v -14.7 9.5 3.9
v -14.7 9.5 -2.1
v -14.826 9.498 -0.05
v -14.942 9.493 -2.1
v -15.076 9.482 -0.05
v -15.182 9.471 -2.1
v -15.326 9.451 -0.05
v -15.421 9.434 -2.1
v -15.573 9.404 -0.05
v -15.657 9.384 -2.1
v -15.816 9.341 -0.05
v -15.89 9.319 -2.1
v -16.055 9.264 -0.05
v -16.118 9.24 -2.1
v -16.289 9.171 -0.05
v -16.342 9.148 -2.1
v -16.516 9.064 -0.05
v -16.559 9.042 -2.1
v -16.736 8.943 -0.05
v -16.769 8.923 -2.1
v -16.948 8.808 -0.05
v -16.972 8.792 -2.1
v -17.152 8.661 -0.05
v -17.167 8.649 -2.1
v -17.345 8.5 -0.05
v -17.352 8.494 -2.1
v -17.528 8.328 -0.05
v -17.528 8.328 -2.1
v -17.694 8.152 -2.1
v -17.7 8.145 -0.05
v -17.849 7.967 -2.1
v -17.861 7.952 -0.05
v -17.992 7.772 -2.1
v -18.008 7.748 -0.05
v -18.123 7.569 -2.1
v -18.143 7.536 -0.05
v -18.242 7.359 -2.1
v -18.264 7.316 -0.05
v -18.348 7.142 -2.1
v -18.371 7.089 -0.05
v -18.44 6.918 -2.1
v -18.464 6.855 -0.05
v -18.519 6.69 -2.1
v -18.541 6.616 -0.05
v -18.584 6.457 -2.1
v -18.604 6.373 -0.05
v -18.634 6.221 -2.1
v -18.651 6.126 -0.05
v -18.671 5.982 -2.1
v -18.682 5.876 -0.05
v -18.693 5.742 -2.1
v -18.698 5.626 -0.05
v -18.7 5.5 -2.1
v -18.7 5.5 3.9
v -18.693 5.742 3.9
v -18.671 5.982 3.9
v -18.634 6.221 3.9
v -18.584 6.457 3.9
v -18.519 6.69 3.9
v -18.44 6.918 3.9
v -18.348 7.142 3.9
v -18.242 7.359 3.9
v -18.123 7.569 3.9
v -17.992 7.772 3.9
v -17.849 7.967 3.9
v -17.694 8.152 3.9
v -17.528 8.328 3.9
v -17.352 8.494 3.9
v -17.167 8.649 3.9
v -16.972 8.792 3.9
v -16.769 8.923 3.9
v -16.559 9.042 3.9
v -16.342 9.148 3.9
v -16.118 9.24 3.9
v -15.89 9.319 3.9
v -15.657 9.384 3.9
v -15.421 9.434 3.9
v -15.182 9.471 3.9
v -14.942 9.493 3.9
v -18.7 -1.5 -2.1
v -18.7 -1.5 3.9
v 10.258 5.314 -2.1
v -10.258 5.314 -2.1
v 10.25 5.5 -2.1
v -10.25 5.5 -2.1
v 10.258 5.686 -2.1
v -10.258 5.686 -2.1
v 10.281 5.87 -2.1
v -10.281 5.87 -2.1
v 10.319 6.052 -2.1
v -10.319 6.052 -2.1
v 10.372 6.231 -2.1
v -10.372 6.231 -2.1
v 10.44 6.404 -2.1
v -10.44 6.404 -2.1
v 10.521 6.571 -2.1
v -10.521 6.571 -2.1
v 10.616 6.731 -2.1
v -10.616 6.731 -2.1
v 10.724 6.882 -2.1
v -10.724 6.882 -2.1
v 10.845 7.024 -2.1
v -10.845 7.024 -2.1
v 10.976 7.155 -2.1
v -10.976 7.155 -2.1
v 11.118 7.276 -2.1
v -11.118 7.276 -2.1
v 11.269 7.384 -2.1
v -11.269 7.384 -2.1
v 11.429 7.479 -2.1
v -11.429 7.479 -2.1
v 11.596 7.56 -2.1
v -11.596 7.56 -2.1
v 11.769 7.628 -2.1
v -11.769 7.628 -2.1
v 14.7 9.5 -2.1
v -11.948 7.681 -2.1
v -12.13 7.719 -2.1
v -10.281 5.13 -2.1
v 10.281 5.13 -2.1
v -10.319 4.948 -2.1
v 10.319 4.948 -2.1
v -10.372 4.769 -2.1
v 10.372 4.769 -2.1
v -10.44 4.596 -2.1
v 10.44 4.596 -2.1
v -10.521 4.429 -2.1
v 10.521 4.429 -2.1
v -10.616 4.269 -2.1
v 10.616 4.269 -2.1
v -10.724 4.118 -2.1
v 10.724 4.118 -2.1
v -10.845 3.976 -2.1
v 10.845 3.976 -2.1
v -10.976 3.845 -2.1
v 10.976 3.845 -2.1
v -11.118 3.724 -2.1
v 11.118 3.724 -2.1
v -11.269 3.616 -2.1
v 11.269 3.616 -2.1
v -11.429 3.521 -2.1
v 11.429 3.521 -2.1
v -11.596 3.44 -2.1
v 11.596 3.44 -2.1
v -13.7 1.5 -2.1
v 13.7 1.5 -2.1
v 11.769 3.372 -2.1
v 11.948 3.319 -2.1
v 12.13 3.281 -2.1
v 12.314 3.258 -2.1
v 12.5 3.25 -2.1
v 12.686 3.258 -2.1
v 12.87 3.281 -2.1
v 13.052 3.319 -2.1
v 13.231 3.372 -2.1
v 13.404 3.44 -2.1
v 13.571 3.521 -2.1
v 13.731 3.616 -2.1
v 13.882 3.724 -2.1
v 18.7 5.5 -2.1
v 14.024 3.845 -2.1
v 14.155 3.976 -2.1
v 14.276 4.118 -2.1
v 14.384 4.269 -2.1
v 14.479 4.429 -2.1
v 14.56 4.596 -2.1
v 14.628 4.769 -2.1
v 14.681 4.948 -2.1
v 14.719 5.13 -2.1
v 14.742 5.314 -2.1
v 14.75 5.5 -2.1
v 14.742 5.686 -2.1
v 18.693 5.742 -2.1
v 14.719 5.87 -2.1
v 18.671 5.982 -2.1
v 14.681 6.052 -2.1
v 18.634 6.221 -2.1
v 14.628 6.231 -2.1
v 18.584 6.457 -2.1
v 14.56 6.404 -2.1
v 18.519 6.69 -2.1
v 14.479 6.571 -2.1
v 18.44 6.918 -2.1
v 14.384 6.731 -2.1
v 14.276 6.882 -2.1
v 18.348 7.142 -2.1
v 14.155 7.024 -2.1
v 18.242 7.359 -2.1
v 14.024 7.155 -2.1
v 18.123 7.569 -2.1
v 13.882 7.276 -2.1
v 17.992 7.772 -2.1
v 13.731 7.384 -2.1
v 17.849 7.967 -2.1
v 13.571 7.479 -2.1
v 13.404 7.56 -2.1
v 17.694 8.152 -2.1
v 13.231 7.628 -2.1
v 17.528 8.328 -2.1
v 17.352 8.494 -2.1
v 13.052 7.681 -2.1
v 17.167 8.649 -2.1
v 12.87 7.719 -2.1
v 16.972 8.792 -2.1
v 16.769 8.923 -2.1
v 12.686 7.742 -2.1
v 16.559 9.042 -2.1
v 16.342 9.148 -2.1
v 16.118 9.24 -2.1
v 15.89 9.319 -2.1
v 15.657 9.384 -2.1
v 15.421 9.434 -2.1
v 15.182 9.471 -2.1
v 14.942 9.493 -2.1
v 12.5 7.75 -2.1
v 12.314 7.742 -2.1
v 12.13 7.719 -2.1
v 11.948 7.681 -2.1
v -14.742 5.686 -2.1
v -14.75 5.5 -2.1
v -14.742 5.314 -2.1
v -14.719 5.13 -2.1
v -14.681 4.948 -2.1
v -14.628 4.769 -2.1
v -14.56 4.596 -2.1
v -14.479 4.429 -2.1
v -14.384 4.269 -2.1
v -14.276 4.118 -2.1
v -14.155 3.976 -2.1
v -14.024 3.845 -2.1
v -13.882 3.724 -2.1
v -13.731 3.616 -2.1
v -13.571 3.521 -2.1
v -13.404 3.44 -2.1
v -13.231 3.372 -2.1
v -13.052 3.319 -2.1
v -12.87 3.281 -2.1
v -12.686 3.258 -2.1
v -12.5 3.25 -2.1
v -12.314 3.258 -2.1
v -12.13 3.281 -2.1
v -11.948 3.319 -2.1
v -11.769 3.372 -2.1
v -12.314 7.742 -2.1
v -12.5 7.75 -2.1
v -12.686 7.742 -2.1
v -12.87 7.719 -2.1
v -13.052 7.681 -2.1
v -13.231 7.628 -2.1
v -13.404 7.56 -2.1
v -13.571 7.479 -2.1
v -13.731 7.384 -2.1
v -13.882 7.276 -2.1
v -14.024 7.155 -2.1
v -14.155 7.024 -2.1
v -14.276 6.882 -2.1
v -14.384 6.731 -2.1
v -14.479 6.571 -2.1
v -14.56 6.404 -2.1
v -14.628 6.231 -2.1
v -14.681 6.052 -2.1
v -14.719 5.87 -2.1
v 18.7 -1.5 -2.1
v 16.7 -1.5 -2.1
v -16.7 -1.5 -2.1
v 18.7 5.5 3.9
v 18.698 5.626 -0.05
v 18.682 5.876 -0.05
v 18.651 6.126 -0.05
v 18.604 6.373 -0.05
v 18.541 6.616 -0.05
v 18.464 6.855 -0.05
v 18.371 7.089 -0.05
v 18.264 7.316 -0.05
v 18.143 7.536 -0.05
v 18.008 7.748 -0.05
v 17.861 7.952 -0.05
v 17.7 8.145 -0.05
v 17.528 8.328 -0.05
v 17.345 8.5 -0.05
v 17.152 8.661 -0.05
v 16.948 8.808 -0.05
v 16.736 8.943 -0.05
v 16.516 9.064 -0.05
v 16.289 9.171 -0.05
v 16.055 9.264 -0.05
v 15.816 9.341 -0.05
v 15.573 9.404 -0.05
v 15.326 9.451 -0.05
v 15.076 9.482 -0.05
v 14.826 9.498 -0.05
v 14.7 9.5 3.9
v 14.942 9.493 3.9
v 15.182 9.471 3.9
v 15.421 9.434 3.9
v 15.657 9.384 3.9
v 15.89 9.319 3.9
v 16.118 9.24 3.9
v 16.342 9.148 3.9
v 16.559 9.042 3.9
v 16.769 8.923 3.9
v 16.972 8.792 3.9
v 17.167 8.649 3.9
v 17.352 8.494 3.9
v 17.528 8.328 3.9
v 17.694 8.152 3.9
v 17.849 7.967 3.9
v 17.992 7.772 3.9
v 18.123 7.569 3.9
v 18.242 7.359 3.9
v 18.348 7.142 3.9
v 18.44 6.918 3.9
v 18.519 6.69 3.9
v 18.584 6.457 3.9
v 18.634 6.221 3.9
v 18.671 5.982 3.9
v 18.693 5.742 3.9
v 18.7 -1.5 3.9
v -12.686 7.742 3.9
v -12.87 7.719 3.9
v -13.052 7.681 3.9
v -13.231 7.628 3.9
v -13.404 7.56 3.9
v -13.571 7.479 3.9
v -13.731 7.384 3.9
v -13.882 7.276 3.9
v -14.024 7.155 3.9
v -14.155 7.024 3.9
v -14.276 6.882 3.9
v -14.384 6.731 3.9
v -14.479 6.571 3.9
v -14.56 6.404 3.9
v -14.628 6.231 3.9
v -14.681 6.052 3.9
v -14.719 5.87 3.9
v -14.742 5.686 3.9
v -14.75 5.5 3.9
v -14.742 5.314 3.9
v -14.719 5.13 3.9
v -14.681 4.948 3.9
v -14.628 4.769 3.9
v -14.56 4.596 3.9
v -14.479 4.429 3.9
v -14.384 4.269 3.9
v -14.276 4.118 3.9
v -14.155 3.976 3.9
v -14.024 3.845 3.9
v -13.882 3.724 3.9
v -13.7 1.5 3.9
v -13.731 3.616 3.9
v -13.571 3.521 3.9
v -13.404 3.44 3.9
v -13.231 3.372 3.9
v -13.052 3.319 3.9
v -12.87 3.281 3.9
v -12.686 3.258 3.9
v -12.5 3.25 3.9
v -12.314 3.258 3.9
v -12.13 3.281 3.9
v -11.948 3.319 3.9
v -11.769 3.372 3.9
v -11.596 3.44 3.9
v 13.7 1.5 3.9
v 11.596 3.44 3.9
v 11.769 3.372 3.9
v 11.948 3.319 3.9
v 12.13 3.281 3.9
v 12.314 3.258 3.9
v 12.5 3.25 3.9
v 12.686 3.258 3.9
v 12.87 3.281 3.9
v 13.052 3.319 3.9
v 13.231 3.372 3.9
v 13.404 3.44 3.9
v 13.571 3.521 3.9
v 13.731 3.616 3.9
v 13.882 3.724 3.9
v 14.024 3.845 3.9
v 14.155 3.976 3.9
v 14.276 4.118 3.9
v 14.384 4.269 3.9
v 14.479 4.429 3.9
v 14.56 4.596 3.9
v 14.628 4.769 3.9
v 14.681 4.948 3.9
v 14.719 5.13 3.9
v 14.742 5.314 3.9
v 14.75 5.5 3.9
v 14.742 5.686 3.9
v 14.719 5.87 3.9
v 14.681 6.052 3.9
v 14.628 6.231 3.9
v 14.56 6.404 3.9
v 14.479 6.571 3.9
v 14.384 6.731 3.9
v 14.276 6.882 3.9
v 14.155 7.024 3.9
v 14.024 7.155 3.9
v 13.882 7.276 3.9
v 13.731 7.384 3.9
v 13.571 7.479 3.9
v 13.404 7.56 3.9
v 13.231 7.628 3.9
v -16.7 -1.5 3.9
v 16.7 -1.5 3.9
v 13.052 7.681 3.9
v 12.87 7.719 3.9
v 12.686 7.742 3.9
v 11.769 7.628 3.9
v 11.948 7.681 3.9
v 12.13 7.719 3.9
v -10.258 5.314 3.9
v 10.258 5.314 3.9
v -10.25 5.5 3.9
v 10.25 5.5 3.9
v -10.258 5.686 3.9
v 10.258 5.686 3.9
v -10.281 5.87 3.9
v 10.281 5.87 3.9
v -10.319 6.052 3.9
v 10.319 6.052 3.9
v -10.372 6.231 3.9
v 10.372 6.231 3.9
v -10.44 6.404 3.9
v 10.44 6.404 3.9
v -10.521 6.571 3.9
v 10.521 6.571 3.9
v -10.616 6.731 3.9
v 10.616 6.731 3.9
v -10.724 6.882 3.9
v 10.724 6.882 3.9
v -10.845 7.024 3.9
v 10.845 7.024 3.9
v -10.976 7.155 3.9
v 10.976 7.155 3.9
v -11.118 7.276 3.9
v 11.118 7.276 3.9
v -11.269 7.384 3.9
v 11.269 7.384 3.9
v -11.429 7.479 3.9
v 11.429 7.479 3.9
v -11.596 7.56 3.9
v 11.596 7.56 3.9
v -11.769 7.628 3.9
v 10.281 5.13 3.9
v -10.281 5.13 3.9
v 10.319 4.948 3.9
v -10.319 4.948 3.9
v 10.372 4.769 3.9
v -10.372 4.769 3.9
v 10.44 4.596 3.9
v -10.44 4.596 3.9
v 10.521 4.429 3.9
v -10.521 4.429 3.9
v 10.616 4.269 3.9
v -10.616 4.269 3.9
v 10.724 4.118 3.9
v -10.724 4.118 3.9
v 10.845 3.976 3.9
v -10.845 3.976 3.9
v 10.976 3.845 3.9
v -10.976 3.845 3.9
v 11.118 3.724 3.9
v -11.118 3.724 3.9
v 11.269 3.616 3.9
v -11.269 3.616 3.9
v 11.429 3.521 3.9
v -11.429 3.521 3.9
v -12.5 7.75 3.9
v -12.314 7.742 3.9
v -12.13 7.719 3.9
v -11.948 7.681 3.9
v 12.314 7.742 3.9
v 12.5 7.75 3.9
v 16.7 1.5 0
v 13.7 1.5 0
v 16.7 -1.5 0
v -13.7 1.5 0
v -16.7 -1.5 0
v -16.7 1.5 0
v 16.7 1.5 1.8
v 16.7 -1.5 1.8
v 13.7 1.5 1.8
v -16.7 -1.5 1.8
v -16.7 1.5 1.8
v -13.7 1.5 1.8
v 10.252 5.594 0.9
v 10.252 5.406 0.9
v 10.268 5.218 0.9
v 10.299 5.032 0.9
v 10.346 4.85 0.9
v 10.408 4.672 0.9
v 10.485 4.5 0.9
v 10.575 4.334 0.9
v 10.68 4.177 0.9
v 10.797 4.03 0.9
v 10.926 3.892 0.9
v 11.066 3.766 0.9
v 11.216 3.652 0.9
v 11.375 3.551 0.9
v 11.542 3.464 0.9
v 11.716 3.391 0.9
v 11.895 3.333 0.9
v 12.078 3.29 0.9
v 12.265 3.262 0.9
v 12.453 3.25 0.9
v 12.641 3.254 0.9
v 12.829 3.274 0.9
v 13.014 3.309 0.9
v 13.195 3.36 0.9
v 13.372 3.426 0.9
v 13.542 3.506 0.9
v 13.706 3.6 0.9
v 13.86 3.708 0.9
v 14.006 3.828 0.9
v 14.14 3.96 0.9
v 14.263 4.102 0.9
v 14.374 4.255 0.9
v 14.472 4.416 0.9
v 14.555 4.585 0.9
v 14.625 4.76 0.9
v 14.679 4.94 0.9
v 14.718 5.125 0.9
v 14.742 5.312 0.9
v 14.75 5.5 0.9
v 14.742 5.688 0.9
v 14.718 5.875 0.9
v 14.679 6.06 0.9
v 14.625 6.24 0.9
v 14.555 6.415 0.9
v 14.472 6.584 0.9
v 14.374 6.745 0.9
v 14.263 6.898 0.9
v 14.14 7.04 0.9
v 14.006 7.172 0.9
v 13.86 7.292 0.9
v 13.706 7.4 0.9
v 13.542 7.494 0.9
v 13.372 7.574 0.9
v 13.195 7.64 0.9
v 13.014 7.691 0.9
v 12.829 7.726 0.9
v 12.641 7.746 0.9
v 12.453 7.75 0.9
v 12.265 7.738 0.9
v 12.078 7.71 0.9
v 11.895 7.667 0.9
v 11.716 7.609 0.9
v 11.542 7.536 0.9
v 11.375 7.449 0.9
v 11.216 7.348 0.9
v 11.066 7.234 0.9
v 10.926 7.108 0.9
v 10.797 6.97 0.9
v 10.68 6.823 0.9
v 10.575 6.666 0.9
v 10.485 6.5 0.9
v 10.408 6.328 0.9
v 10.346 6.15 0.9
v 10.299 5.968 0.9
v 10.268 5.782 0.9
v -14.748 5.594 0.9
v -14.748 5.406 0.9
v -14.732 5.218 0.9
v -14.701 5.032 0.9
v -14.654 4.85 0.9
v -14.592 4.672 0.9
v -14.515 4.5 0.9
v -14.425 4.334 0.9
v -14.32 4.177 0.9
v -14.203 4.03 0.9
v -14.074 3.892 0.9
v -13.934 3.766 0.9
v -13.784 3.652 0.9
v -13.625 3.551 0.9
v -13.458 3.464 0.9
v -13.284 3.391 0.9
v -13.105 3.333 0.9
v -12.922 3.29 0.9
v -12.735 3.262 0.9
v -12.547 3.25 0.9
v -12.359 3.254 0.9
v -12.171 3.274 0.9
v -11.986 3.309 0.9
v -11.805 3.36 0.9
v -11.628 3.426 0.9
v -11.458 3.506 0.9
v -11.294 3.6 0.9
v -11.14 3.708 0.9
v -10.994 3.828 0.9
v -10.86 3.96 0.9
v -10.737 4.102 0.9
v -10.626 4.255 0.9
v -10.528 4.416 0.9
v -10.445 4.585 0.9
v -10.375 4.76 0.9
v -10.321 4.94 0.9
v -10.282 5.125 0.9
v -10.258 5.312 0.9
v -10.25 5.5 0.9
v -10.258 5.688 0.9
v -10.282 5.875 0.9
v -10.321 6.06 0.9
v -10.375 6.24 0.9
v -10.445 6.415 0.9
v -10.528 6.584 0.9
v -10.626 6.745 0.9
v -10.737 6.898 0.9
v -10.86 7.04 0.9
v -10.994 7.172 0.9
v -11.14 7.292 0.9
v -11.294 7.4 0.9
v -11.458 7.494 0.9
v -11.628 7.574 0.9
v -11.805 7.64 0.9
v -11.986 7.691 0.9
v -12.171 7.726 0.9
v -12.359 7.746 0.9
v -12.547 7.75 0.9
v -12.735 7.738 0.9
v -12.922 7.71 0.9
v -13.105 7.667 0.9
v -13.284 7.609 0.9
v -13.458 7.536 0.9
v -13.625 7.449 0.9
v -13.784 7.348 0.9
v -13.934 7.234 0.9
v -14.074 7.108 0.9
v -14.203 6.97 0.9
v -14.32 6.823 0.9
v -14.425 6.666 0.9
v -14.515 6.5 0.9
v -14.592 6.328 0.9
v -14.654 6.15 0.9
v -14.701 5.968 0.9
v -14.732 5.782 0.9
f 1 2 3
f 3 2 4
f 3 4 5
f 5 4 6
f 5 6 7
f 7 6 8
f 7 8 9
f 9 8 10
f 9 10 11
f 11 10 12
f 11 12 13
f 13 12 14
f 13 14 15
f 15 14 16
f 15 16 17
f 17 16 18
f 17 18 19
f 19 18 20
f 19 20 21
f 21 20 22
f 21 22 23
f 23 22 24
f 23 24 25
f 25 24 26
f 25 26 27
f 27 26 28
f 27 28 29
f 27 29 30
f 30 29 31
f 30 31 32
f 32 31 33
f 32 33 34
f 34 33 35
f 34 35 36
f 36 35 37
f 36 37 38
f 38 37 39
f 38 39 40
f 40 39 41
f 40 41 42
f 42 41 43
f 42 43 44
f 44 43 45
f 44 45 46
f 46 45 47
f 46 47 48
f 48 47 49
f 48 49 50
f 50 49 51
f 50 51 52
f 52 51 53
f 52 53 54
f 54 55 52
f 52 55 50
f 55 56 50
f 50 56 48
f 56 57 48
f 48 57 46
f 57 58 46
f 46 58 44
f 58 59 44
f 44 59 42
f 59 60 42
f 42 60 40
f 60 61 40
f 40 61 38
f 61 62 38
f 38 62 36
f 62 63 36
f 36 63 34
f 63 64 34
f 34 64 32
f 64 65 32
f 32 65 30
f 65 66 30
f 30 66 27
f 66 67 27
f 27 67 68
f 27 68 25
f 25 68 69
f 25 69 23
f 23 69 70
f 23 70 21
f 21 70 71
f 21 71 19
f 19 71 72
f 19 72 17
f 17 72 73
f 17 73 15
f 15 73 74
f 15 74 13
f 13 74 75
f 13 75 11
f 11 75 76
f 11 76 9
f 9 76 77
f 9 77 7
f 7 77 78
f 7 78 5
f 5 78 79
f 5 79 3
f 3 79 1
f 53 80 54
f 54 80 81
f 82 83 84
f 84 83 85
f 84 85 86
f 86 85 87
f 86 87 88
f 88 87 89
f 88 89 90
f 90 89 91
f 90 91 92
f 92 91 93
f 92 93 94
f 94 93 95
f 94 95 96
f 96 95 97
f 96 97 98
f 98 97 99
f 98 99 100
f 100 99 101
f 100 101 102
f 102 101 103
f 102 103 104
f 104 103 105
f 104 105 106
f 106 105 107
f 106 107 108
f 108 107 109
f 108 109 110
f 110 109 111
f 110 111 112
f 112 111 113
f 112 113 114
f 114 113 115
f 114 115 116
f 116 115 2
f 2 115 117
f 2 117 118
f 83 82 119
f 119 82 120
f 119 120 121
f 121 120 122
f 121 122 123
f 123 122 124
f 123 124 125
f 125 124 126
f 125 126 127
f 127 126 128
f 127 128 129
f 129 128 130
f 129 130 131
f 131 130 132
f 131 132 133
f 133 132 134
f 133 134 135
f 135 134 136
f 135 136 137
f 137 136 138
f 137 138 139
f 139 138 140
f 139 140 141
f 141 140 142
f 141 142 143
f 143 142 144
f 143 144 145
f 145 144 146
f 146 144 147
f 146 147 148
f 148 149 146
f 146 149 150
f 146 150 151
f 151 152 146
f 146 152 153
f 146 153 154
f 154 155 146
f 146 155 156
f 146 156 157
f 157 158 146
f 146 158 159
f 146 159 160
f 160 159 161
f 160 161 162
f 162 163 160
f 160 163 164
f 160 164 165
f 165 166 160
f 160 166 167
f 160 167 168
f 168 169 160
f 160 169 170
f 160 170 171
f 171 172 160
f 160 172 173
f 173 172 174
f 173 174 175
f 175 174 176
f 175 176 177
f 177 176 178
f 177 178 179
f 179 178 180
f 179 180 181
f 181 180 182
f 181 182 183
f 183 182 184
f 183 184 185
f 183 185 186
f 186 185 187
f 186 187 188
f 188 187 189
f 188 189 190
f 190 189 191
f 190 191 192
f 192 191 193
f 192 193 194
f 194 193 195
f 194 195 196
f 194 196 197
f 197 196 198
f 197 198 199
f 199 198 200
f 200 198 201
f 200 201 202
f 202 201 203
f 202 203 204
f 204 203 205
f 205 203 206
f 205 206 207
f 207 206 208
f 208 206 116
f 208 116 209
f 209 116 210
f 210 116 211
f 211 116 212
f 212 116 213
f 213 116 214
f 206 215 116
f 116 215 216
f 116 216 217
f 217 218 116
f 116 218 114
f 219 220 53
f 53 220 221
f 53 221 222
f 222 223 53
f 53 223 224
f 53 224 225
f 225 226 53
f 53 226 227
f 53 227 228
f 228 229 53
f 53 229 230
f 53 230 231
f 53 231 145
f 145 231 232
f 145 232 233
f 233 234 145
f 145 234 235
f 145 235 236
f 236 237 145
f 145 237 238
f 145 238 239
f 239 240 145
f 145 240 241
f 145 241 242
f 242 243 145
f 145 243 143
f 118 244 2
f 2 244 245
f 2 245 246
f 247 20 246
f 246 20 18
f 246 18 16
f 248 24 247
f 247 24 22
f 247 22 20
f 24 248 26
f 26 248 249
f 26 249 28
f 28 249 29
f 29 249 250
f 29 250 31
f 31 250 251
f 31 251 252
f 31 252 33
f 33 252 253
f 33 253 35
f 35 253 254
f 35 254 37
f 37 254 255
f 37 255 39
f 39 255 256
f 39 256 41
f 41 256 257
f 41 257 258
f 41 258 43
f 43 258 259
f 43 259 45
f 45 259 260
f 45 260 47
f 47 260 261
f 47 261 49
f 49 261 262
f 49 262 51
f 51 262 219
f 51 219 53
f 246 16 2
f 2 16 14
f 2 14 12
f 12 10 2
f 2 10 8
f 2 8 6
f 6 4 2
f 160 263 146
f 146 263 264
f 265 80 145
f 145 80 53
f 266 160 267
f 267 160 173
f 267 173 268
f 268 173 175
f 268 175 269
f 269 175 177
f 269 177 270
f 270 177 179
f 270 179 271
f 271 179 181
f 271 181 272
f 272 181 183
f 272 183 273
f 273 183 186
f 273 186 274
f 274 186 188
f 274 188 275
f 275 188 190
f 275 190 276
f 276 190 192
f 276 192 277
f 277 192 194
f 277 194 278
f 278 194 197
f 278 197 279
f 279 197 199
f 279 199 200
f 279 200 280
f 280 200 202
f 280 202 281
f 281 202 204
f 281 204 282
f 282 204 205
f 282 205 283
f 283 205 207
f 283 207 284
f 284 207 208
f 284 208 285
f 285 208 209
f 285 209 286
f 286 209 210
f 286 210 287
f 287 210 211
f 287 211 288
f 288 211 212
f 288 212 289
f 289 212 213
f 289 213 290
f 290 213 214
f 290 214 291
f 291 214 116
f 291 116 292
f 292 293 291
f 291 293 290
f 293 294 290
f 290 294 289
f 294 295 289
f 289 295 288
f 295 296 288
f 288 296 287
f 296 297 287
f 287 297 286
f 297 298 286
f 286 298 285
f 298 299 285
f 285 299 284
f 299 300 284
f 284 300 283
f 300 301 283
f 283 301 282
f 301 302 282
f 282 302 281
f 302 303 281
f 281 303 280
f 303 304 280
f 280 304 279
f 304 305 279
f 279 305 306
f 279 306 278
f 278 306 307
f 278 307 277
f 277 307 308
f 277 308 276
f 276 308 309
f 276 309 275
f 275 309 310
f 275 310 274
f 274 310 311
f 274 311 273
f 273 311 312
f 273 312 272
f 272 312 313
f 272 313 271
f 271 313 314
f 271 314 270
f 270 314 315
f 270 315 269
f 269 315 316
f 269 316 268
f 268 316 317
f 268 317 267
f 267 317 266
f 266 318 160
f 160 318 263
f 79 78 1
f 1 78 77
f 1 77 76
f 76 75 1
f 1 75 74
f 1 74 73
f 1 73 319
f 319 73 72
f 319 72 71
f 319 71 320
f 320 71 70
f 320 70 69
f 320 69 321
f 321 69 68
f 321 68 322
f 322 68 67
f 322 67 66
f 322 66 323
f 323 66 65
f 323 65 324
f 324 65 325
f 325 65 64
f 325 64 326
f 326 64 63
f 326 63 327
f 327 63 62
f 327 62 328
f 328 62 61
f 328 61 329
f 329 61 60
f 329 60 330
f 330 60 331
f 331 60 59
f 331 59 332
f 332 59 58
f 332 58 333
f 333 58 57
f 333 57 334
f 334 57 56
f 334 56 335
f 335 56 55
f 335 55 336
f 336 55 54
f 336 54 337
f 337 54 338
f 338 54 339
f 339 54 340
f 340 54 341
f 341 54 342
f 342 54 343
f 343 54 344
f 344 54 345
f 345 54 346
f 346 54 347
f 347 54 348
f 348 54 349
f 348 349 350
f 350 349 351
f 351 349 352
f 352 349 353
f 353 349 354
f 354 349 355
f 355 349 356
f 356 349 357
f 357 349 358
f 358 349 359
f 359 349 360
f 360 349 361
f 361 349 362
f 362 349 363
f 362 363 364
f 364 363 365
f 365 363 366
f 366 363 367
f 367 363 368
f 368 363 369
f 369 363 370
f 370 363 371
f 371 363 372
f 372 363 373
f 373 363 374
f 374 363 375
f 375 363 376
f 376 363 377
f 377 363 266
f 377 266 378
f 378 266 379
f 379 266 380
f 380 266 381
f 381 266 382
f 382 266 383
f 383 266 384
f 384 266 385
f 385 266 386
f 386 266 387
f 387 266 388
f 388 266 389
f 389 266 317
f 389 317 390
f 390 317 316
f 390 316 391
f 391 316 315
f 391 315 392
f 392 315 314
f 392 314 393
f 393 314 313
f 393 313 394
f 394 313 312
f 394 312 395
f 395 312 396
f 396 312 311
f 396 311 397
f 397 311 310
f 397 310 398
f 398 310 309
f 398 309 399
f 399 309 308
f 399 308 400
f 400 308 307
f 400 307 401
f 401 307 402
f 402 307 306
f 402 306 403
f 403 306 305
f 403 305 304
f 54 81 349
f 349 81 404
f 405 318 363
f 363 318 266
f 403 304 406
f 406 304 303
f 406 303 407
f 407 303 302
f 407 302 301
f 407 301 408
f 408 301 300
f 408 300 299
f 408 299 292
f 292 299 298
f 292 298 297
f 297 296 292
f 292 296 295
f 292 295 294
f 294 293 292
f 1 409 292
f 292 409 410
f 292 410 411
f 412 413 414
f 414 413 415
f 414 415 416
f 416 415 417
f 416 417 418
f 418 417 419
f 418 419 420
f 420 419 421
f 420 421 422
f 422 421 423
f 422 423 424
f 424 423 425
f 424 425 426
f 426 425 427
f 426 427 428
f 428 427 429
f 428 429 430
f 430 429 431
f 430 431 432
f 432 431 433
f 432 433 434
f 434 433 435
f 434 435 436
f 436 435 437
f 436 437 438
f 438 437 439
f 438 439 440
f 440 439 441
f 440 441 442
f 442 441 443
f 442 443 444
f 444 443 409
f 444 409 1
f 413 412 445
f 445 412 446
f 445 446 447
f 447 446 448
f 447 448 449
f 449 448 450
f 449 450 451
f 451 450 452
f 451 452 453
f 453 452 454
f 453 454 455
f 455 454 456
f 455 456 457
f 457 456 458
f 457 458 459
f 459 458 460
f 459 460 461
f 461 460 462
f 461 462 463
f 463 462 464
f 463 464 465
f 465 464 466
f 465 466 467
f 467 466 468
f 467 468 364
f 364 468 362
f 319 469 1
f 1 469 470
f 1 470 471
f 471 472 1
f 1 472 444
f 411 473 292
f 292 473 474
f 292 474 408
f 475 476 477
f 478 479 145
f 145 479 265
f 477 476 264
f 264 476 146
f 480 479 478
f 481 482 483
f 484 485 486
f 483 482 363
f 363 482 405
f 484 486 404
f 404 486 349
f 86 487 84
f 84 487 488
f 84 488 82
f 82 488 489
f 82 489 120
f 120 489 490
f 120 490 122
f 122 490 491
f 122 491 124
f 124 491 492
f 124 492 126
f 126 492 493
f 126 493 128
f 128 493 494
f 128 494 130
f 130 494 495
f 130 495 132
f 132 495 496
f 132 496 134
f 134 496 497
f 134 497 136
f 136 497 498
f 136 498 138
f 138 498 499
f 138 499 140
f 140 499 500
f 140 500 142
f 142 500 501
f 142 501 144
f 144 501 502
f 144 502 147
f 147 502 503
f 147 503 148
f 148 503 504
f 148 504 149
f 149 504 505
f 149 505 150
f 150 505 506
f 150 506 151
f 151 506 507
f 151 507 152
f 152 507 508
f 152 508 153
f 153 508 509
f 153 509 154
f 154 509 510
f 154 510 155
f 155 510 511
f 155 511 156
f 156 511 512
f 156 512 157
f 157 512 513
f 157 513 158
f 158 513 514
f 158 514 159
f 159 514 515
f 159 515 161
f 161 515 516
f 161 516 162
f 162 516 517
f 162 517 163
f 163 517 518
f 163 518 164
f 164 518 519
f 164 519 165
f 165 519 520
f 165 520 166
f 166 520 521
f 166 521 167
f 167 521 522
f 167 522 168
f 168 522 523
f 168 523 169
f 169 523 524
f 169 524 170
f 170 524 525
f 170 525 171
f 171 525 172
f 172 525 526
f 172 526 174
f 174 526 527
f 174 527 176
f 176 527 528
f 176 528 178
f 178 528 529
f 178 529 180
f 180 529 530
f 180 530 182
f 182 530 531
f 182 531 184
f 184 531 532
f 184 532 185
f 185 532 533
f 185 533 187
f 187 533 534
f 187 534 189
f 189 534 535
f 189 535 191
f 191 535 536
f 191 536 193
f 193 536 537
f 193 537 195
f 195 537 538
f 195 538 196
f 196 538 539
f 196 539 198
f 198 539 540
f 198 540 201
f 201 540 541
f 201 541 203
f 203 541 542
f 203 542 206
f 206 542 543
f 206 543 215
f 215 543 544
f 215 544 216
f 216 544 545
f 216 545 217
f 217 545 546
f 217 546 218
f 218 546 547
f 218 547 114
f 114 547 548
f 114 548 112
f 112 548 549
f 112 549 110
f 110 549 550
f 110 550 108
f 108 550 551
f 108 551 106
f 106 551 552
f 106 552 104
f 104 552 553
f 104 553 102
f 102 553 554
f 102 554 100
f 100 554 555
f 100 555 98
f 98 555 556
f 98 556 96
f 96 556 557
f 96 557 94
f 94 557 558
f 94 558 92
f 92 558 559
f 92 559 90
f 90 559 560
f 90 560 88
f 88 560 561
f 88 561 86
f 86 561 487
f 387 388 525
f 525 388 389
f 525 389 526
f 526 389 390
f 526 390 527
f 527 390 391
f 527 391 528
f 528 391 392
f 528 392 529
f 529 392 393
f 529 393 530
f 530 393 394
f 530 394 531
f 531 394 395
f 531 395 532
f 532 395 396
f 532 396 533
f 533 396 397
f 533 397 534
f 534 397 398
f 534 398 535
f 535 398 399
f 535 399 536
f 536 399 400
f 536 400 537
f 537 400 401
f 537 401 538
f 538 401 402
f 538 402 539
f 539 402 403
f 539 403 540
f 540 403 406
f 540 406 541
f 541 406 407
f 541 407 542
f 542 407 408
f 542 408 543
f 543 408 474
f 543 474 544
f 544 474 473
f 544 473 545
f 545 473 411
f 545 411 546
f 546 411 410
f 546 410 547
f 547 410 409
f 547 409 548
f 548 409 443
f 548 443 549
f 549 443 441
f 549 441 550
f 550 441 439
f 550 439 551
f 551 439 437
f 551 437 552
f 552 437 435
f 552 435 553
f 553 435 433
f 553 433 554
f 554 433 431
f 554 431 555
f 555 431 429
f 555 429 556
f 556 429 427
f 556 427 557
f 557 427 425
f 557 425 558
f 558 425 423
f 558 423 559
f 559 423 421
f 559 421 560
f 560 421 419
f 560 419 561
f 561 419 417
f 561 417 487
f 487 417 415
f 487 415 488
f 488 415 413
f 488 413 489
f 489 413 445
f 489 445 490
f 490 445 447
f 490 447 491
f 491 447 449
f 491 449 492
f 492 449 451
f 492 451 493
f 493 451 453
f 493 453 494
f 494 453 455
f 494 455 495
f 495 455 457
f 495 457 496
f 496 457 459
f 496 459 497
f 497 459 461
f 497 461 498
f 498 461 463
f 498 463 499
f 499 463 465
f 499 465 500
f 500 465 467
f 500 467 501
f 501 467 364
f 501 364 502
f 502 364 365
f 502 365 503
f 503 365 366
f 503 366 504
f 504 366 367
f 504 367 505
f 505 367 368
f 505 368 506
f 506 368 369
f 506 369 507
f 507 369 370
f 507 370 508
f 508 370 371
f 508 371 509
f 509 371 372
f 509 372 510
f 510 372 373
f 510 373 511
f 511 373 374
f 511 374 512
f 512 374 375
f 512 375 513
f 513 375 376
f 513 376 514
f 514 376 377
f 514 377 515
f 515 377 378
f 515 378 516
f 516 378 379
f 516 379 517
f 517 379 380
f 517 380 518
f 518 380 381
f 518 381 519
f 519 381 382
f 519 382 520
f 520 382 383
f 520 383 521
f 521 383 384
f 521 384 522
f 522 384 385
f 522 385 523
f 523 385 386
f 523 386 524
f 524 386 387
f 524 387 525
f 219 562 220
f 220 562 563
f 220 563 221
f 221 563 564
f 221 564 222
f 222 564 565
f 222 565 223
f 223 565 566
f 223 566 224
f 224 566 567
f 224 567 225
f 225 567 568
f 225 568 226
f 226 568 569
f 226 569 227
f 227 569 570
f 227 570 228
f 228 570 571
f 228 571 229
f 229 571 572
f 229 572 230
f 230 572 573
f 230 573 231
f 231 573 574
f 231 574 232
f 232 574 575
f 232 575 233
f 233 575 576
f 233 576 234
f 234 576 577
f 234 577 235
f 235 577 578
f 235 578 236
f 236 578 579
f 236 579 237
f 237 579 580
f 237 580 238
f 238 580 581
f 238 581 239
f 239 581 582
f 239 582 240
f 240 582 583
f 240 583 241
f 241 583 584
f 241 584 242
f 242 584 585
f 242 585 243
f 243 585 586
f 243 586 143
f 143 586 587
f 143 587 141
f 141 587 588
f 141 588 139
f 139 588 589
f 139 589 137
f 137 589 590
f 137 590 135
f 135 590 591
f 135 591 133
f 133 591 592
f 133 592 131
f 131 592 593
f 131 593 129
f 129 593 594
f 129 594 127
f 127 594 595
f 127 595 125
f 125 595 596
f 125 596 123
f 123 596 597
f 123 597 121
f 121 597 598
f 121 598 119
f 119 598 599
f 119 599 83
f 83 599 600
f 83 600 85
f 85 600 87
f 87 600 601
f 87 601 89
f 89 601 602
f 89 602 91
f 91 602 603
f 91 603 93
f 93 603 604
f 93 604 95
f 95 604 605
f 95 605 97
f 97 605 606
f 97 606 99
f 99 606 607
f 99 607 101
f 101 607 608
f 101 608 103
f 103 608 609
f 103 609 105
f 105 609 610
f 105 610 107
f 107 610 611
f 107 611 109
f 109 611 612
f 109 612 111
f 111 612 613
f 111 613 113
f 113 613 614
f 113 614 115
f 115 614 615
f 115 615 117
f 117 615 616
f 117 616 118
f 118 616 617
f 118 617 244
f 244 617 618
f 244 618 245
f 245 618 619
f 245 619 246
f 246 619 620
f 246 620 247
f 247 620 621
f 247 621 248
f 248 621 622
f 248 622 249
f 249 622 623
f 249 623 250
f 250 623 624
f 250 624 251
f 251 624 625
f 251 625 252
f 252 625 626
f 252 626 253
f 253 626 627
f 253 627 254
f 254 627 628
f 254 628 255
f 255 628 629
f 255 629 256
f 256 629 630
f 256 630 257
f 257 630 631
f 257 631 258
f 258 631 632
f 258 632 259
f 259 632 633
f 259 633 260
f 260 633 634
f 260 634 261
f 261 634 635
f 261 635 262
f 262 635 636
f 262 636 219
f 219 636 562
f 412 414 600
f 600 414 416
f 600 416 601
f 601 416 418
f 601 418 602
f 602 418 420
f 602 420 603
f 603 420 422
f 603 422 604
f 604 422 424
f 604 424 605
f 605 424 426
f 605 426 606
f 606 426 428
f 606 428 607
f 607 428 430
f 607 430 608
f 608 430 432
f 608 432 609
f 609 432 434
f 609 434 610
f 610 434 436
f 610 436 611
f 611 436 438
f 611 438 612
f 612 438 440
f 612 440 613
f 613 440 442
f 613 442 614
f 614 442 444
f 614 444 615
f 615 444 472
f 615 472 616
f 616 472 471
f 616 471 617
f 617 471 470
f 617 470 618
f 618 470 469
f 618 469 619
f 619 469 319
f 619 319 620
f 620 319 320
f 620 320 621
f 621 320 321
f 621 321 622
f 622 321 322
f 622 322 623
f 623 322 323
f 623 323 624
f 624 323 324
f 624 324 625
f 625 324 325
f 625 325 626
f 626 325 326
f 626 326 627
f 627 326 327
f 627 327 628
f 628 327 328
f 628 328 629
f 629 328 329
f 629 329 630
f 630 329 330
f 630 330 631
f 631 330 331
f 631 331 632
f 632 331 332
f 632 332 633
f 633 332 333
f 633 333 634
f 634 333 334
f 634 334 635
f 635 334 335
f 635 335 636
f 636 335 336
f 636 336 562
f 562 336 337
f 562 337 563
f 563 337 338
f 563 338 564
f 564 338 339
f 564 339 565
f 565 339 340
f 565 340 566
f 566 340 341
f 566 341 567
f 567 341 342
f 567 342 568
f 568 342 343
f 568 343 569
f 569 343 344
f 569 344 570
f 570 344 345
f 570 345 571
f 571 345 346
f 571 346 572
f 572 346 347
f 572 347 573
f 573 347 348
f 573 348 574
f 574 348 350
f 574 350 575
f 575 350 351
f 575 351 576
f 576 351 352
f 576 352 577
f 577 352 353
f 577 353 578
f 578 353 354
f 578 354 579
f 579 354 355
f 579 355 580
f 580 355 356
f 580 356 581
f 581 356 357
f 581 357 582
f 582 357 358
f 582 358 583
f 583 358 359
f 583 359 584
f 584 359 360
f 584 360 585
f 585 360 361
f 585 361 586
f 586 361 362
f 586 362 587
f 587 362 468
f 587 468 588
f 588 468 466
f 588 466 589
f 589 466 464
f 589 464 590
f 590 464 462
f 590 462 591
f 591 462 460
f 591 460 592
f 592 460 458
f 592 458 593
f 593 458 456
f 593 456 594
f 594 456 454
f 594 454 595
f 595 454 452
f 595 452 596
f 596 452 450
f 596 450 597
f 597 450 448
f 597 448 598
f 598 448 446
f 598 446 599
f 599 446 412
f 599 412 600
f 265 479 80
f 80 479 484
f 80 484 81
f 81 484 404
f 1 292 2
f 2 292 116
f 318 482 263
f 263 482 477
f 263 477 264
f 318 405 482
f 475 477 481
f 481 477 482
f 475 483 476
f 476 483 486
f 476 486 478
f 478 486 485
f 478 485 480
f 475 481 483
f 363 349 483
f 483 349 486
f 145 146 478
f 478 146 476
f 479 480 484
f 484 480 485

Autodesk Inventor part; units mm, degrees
ref_plane "YZ Plane" through (0, 0, 0) normal (1, 0, 0) x (0, 1, 0)
ref_plane "XZ Plane" through (0, 0, 0) normal (0, 1, 0) x (-1, 0, 0)
ref_plane "XY Plane" through (0, 0, 0) normal (0, 0, 1) x (1, 0, 0)
sketch "スケッチ1" plane through (0, 0, 0) normal (0, 0, 1) x (1, 0, 0)
  line L0 (-16.7, 1.5) -> (16.7, 1.5) construction
  line L1 (16.7, 1.5) -> (16.7, -1.5) construction
  line L2 (16.7, -1.5) -> (-16.7, -1.5) construction
  line L3 (-16.7, -1.5) -> (-16.7, 1.5) construction
  line L4 (-16.7, 1.5) -> (16.7, -1.5) construction
  line L5 (16.7, 1.5) -> (-16.7, -1.5) construction
  line L6 (-16.7, -1.5) -> (-16.7, 1.5)
  line L7 (-16.7, 1.5) -> (16.7, 1.5)
  line L8 (16.7, 1.5) -> (16.7, -1.5)
  line L9 (16.7, -1.5) -> (18.7, -1.5)
  line L10 (18.7, -1.5) -> (18.7, 9.5)
  line L11 (18.7, 9.5) -> (-18.7, 9.5)
  line L12 (-18.7, 9.5) -> (-18.7, -1.5)
  line L13 (-18.7, -1.5) -> (-16.7, -1.5)
  circle A0 centre (-12.5, 5.5) radius 2.25
  line L14 (0, 9.5) -> (0, 0) construction
  circle A1 centre (12.5, 5.5) radius 2.25
  dimension "d0" = 3
  dimension "d1" = 33.4
  dimension "d2" = 8
  dimension "d3" = 2
  dimension "d4" = 4.5
  dimension "d5" = 4
  dimension "d6" = 6.2
extrude "押し出し1" add sketch "スケッチ1" along normal blind 1.8
sketch "スケッチ2" plane through (0, 0, 1.8) normal (0, 0, 1) x (1, 0, 0)
  line L0 (-18.7, -1.5) -> (-16.7, -1.5)
  line L1 (-16.7, -1.5) -> (-13.7, 1.5)
  line L2 (-13.7, 1.5) -> (13.7, 1.5)
  line L3 (13.7, 1.5) -> (16.7, -1.5)
  line L4 (16.7, -1.5) -> (18.7, -1.5)
  line L5 (18.7, -1.5) -> (18.7, 9.5)
  line L6 (18.7, 9.5) -> (-18.7, 9.5)
  line L7 (-18.7, 9.5) -> (-18.7, -1.5)
  line L8 (-16.7, 1.5) -> (16.7, 1.5) projected
  circle A0 centre (-12.5, 5.5) radius 2.25 projected
  circle A1 centre (12.5, 5.5) radius 2.25 projected
  point P0 (0, 0)
  dimension "d9" = 135
  dimension "d10" = 135
extrude "押し出し2" add sketch "スケッチ2" along normal blind 2.1
sketch "スケッチ3" plane through (0, 0, 0) normal (0, 0, -1) x (-1, 0, 0)
  circle A0 centre (-12.5, 5.5) radius 2.25 projected
  circle A1 centre (12.5, 5.5) radius 2.25 projected
  line L0 (18.7, -1.5) -> (16.7, -1.5) projected
  line L1 (16.7, -1.5) -> (13.7, 1.5) projected
  line L2 (13.7, 1.5) -> (-13.7, 1.5) projected
  line L3 (-13.7, 1.5) -> (-16.7, -1.5) projected
  line L4 (-16.7, -1.5) -> (-18.7, -1.5) projected
  line L5 (-18.7, -1.5) -> (-18.7, 9.5) projected
  line L6 (-18.7, 9.5) -> (18.7, 9.5) projected
  line L7 (18.7, 9.5) -> (18.7, -1.5) projected
  point P0 (0, 0)
extrude "押し出し3" add sketch "スケッチ3" along normal blind 2.1
fillet "フィレット1" radius 4 2 edges at (18.7, 9.5, 0.9) (-18.7, 9.5, 0.9)
equation "\"d5\" = 0.5 * d2"
equation "\"d10\" = d9"
properties part number "dcdcfixer" material "アルミニウム 6061"
